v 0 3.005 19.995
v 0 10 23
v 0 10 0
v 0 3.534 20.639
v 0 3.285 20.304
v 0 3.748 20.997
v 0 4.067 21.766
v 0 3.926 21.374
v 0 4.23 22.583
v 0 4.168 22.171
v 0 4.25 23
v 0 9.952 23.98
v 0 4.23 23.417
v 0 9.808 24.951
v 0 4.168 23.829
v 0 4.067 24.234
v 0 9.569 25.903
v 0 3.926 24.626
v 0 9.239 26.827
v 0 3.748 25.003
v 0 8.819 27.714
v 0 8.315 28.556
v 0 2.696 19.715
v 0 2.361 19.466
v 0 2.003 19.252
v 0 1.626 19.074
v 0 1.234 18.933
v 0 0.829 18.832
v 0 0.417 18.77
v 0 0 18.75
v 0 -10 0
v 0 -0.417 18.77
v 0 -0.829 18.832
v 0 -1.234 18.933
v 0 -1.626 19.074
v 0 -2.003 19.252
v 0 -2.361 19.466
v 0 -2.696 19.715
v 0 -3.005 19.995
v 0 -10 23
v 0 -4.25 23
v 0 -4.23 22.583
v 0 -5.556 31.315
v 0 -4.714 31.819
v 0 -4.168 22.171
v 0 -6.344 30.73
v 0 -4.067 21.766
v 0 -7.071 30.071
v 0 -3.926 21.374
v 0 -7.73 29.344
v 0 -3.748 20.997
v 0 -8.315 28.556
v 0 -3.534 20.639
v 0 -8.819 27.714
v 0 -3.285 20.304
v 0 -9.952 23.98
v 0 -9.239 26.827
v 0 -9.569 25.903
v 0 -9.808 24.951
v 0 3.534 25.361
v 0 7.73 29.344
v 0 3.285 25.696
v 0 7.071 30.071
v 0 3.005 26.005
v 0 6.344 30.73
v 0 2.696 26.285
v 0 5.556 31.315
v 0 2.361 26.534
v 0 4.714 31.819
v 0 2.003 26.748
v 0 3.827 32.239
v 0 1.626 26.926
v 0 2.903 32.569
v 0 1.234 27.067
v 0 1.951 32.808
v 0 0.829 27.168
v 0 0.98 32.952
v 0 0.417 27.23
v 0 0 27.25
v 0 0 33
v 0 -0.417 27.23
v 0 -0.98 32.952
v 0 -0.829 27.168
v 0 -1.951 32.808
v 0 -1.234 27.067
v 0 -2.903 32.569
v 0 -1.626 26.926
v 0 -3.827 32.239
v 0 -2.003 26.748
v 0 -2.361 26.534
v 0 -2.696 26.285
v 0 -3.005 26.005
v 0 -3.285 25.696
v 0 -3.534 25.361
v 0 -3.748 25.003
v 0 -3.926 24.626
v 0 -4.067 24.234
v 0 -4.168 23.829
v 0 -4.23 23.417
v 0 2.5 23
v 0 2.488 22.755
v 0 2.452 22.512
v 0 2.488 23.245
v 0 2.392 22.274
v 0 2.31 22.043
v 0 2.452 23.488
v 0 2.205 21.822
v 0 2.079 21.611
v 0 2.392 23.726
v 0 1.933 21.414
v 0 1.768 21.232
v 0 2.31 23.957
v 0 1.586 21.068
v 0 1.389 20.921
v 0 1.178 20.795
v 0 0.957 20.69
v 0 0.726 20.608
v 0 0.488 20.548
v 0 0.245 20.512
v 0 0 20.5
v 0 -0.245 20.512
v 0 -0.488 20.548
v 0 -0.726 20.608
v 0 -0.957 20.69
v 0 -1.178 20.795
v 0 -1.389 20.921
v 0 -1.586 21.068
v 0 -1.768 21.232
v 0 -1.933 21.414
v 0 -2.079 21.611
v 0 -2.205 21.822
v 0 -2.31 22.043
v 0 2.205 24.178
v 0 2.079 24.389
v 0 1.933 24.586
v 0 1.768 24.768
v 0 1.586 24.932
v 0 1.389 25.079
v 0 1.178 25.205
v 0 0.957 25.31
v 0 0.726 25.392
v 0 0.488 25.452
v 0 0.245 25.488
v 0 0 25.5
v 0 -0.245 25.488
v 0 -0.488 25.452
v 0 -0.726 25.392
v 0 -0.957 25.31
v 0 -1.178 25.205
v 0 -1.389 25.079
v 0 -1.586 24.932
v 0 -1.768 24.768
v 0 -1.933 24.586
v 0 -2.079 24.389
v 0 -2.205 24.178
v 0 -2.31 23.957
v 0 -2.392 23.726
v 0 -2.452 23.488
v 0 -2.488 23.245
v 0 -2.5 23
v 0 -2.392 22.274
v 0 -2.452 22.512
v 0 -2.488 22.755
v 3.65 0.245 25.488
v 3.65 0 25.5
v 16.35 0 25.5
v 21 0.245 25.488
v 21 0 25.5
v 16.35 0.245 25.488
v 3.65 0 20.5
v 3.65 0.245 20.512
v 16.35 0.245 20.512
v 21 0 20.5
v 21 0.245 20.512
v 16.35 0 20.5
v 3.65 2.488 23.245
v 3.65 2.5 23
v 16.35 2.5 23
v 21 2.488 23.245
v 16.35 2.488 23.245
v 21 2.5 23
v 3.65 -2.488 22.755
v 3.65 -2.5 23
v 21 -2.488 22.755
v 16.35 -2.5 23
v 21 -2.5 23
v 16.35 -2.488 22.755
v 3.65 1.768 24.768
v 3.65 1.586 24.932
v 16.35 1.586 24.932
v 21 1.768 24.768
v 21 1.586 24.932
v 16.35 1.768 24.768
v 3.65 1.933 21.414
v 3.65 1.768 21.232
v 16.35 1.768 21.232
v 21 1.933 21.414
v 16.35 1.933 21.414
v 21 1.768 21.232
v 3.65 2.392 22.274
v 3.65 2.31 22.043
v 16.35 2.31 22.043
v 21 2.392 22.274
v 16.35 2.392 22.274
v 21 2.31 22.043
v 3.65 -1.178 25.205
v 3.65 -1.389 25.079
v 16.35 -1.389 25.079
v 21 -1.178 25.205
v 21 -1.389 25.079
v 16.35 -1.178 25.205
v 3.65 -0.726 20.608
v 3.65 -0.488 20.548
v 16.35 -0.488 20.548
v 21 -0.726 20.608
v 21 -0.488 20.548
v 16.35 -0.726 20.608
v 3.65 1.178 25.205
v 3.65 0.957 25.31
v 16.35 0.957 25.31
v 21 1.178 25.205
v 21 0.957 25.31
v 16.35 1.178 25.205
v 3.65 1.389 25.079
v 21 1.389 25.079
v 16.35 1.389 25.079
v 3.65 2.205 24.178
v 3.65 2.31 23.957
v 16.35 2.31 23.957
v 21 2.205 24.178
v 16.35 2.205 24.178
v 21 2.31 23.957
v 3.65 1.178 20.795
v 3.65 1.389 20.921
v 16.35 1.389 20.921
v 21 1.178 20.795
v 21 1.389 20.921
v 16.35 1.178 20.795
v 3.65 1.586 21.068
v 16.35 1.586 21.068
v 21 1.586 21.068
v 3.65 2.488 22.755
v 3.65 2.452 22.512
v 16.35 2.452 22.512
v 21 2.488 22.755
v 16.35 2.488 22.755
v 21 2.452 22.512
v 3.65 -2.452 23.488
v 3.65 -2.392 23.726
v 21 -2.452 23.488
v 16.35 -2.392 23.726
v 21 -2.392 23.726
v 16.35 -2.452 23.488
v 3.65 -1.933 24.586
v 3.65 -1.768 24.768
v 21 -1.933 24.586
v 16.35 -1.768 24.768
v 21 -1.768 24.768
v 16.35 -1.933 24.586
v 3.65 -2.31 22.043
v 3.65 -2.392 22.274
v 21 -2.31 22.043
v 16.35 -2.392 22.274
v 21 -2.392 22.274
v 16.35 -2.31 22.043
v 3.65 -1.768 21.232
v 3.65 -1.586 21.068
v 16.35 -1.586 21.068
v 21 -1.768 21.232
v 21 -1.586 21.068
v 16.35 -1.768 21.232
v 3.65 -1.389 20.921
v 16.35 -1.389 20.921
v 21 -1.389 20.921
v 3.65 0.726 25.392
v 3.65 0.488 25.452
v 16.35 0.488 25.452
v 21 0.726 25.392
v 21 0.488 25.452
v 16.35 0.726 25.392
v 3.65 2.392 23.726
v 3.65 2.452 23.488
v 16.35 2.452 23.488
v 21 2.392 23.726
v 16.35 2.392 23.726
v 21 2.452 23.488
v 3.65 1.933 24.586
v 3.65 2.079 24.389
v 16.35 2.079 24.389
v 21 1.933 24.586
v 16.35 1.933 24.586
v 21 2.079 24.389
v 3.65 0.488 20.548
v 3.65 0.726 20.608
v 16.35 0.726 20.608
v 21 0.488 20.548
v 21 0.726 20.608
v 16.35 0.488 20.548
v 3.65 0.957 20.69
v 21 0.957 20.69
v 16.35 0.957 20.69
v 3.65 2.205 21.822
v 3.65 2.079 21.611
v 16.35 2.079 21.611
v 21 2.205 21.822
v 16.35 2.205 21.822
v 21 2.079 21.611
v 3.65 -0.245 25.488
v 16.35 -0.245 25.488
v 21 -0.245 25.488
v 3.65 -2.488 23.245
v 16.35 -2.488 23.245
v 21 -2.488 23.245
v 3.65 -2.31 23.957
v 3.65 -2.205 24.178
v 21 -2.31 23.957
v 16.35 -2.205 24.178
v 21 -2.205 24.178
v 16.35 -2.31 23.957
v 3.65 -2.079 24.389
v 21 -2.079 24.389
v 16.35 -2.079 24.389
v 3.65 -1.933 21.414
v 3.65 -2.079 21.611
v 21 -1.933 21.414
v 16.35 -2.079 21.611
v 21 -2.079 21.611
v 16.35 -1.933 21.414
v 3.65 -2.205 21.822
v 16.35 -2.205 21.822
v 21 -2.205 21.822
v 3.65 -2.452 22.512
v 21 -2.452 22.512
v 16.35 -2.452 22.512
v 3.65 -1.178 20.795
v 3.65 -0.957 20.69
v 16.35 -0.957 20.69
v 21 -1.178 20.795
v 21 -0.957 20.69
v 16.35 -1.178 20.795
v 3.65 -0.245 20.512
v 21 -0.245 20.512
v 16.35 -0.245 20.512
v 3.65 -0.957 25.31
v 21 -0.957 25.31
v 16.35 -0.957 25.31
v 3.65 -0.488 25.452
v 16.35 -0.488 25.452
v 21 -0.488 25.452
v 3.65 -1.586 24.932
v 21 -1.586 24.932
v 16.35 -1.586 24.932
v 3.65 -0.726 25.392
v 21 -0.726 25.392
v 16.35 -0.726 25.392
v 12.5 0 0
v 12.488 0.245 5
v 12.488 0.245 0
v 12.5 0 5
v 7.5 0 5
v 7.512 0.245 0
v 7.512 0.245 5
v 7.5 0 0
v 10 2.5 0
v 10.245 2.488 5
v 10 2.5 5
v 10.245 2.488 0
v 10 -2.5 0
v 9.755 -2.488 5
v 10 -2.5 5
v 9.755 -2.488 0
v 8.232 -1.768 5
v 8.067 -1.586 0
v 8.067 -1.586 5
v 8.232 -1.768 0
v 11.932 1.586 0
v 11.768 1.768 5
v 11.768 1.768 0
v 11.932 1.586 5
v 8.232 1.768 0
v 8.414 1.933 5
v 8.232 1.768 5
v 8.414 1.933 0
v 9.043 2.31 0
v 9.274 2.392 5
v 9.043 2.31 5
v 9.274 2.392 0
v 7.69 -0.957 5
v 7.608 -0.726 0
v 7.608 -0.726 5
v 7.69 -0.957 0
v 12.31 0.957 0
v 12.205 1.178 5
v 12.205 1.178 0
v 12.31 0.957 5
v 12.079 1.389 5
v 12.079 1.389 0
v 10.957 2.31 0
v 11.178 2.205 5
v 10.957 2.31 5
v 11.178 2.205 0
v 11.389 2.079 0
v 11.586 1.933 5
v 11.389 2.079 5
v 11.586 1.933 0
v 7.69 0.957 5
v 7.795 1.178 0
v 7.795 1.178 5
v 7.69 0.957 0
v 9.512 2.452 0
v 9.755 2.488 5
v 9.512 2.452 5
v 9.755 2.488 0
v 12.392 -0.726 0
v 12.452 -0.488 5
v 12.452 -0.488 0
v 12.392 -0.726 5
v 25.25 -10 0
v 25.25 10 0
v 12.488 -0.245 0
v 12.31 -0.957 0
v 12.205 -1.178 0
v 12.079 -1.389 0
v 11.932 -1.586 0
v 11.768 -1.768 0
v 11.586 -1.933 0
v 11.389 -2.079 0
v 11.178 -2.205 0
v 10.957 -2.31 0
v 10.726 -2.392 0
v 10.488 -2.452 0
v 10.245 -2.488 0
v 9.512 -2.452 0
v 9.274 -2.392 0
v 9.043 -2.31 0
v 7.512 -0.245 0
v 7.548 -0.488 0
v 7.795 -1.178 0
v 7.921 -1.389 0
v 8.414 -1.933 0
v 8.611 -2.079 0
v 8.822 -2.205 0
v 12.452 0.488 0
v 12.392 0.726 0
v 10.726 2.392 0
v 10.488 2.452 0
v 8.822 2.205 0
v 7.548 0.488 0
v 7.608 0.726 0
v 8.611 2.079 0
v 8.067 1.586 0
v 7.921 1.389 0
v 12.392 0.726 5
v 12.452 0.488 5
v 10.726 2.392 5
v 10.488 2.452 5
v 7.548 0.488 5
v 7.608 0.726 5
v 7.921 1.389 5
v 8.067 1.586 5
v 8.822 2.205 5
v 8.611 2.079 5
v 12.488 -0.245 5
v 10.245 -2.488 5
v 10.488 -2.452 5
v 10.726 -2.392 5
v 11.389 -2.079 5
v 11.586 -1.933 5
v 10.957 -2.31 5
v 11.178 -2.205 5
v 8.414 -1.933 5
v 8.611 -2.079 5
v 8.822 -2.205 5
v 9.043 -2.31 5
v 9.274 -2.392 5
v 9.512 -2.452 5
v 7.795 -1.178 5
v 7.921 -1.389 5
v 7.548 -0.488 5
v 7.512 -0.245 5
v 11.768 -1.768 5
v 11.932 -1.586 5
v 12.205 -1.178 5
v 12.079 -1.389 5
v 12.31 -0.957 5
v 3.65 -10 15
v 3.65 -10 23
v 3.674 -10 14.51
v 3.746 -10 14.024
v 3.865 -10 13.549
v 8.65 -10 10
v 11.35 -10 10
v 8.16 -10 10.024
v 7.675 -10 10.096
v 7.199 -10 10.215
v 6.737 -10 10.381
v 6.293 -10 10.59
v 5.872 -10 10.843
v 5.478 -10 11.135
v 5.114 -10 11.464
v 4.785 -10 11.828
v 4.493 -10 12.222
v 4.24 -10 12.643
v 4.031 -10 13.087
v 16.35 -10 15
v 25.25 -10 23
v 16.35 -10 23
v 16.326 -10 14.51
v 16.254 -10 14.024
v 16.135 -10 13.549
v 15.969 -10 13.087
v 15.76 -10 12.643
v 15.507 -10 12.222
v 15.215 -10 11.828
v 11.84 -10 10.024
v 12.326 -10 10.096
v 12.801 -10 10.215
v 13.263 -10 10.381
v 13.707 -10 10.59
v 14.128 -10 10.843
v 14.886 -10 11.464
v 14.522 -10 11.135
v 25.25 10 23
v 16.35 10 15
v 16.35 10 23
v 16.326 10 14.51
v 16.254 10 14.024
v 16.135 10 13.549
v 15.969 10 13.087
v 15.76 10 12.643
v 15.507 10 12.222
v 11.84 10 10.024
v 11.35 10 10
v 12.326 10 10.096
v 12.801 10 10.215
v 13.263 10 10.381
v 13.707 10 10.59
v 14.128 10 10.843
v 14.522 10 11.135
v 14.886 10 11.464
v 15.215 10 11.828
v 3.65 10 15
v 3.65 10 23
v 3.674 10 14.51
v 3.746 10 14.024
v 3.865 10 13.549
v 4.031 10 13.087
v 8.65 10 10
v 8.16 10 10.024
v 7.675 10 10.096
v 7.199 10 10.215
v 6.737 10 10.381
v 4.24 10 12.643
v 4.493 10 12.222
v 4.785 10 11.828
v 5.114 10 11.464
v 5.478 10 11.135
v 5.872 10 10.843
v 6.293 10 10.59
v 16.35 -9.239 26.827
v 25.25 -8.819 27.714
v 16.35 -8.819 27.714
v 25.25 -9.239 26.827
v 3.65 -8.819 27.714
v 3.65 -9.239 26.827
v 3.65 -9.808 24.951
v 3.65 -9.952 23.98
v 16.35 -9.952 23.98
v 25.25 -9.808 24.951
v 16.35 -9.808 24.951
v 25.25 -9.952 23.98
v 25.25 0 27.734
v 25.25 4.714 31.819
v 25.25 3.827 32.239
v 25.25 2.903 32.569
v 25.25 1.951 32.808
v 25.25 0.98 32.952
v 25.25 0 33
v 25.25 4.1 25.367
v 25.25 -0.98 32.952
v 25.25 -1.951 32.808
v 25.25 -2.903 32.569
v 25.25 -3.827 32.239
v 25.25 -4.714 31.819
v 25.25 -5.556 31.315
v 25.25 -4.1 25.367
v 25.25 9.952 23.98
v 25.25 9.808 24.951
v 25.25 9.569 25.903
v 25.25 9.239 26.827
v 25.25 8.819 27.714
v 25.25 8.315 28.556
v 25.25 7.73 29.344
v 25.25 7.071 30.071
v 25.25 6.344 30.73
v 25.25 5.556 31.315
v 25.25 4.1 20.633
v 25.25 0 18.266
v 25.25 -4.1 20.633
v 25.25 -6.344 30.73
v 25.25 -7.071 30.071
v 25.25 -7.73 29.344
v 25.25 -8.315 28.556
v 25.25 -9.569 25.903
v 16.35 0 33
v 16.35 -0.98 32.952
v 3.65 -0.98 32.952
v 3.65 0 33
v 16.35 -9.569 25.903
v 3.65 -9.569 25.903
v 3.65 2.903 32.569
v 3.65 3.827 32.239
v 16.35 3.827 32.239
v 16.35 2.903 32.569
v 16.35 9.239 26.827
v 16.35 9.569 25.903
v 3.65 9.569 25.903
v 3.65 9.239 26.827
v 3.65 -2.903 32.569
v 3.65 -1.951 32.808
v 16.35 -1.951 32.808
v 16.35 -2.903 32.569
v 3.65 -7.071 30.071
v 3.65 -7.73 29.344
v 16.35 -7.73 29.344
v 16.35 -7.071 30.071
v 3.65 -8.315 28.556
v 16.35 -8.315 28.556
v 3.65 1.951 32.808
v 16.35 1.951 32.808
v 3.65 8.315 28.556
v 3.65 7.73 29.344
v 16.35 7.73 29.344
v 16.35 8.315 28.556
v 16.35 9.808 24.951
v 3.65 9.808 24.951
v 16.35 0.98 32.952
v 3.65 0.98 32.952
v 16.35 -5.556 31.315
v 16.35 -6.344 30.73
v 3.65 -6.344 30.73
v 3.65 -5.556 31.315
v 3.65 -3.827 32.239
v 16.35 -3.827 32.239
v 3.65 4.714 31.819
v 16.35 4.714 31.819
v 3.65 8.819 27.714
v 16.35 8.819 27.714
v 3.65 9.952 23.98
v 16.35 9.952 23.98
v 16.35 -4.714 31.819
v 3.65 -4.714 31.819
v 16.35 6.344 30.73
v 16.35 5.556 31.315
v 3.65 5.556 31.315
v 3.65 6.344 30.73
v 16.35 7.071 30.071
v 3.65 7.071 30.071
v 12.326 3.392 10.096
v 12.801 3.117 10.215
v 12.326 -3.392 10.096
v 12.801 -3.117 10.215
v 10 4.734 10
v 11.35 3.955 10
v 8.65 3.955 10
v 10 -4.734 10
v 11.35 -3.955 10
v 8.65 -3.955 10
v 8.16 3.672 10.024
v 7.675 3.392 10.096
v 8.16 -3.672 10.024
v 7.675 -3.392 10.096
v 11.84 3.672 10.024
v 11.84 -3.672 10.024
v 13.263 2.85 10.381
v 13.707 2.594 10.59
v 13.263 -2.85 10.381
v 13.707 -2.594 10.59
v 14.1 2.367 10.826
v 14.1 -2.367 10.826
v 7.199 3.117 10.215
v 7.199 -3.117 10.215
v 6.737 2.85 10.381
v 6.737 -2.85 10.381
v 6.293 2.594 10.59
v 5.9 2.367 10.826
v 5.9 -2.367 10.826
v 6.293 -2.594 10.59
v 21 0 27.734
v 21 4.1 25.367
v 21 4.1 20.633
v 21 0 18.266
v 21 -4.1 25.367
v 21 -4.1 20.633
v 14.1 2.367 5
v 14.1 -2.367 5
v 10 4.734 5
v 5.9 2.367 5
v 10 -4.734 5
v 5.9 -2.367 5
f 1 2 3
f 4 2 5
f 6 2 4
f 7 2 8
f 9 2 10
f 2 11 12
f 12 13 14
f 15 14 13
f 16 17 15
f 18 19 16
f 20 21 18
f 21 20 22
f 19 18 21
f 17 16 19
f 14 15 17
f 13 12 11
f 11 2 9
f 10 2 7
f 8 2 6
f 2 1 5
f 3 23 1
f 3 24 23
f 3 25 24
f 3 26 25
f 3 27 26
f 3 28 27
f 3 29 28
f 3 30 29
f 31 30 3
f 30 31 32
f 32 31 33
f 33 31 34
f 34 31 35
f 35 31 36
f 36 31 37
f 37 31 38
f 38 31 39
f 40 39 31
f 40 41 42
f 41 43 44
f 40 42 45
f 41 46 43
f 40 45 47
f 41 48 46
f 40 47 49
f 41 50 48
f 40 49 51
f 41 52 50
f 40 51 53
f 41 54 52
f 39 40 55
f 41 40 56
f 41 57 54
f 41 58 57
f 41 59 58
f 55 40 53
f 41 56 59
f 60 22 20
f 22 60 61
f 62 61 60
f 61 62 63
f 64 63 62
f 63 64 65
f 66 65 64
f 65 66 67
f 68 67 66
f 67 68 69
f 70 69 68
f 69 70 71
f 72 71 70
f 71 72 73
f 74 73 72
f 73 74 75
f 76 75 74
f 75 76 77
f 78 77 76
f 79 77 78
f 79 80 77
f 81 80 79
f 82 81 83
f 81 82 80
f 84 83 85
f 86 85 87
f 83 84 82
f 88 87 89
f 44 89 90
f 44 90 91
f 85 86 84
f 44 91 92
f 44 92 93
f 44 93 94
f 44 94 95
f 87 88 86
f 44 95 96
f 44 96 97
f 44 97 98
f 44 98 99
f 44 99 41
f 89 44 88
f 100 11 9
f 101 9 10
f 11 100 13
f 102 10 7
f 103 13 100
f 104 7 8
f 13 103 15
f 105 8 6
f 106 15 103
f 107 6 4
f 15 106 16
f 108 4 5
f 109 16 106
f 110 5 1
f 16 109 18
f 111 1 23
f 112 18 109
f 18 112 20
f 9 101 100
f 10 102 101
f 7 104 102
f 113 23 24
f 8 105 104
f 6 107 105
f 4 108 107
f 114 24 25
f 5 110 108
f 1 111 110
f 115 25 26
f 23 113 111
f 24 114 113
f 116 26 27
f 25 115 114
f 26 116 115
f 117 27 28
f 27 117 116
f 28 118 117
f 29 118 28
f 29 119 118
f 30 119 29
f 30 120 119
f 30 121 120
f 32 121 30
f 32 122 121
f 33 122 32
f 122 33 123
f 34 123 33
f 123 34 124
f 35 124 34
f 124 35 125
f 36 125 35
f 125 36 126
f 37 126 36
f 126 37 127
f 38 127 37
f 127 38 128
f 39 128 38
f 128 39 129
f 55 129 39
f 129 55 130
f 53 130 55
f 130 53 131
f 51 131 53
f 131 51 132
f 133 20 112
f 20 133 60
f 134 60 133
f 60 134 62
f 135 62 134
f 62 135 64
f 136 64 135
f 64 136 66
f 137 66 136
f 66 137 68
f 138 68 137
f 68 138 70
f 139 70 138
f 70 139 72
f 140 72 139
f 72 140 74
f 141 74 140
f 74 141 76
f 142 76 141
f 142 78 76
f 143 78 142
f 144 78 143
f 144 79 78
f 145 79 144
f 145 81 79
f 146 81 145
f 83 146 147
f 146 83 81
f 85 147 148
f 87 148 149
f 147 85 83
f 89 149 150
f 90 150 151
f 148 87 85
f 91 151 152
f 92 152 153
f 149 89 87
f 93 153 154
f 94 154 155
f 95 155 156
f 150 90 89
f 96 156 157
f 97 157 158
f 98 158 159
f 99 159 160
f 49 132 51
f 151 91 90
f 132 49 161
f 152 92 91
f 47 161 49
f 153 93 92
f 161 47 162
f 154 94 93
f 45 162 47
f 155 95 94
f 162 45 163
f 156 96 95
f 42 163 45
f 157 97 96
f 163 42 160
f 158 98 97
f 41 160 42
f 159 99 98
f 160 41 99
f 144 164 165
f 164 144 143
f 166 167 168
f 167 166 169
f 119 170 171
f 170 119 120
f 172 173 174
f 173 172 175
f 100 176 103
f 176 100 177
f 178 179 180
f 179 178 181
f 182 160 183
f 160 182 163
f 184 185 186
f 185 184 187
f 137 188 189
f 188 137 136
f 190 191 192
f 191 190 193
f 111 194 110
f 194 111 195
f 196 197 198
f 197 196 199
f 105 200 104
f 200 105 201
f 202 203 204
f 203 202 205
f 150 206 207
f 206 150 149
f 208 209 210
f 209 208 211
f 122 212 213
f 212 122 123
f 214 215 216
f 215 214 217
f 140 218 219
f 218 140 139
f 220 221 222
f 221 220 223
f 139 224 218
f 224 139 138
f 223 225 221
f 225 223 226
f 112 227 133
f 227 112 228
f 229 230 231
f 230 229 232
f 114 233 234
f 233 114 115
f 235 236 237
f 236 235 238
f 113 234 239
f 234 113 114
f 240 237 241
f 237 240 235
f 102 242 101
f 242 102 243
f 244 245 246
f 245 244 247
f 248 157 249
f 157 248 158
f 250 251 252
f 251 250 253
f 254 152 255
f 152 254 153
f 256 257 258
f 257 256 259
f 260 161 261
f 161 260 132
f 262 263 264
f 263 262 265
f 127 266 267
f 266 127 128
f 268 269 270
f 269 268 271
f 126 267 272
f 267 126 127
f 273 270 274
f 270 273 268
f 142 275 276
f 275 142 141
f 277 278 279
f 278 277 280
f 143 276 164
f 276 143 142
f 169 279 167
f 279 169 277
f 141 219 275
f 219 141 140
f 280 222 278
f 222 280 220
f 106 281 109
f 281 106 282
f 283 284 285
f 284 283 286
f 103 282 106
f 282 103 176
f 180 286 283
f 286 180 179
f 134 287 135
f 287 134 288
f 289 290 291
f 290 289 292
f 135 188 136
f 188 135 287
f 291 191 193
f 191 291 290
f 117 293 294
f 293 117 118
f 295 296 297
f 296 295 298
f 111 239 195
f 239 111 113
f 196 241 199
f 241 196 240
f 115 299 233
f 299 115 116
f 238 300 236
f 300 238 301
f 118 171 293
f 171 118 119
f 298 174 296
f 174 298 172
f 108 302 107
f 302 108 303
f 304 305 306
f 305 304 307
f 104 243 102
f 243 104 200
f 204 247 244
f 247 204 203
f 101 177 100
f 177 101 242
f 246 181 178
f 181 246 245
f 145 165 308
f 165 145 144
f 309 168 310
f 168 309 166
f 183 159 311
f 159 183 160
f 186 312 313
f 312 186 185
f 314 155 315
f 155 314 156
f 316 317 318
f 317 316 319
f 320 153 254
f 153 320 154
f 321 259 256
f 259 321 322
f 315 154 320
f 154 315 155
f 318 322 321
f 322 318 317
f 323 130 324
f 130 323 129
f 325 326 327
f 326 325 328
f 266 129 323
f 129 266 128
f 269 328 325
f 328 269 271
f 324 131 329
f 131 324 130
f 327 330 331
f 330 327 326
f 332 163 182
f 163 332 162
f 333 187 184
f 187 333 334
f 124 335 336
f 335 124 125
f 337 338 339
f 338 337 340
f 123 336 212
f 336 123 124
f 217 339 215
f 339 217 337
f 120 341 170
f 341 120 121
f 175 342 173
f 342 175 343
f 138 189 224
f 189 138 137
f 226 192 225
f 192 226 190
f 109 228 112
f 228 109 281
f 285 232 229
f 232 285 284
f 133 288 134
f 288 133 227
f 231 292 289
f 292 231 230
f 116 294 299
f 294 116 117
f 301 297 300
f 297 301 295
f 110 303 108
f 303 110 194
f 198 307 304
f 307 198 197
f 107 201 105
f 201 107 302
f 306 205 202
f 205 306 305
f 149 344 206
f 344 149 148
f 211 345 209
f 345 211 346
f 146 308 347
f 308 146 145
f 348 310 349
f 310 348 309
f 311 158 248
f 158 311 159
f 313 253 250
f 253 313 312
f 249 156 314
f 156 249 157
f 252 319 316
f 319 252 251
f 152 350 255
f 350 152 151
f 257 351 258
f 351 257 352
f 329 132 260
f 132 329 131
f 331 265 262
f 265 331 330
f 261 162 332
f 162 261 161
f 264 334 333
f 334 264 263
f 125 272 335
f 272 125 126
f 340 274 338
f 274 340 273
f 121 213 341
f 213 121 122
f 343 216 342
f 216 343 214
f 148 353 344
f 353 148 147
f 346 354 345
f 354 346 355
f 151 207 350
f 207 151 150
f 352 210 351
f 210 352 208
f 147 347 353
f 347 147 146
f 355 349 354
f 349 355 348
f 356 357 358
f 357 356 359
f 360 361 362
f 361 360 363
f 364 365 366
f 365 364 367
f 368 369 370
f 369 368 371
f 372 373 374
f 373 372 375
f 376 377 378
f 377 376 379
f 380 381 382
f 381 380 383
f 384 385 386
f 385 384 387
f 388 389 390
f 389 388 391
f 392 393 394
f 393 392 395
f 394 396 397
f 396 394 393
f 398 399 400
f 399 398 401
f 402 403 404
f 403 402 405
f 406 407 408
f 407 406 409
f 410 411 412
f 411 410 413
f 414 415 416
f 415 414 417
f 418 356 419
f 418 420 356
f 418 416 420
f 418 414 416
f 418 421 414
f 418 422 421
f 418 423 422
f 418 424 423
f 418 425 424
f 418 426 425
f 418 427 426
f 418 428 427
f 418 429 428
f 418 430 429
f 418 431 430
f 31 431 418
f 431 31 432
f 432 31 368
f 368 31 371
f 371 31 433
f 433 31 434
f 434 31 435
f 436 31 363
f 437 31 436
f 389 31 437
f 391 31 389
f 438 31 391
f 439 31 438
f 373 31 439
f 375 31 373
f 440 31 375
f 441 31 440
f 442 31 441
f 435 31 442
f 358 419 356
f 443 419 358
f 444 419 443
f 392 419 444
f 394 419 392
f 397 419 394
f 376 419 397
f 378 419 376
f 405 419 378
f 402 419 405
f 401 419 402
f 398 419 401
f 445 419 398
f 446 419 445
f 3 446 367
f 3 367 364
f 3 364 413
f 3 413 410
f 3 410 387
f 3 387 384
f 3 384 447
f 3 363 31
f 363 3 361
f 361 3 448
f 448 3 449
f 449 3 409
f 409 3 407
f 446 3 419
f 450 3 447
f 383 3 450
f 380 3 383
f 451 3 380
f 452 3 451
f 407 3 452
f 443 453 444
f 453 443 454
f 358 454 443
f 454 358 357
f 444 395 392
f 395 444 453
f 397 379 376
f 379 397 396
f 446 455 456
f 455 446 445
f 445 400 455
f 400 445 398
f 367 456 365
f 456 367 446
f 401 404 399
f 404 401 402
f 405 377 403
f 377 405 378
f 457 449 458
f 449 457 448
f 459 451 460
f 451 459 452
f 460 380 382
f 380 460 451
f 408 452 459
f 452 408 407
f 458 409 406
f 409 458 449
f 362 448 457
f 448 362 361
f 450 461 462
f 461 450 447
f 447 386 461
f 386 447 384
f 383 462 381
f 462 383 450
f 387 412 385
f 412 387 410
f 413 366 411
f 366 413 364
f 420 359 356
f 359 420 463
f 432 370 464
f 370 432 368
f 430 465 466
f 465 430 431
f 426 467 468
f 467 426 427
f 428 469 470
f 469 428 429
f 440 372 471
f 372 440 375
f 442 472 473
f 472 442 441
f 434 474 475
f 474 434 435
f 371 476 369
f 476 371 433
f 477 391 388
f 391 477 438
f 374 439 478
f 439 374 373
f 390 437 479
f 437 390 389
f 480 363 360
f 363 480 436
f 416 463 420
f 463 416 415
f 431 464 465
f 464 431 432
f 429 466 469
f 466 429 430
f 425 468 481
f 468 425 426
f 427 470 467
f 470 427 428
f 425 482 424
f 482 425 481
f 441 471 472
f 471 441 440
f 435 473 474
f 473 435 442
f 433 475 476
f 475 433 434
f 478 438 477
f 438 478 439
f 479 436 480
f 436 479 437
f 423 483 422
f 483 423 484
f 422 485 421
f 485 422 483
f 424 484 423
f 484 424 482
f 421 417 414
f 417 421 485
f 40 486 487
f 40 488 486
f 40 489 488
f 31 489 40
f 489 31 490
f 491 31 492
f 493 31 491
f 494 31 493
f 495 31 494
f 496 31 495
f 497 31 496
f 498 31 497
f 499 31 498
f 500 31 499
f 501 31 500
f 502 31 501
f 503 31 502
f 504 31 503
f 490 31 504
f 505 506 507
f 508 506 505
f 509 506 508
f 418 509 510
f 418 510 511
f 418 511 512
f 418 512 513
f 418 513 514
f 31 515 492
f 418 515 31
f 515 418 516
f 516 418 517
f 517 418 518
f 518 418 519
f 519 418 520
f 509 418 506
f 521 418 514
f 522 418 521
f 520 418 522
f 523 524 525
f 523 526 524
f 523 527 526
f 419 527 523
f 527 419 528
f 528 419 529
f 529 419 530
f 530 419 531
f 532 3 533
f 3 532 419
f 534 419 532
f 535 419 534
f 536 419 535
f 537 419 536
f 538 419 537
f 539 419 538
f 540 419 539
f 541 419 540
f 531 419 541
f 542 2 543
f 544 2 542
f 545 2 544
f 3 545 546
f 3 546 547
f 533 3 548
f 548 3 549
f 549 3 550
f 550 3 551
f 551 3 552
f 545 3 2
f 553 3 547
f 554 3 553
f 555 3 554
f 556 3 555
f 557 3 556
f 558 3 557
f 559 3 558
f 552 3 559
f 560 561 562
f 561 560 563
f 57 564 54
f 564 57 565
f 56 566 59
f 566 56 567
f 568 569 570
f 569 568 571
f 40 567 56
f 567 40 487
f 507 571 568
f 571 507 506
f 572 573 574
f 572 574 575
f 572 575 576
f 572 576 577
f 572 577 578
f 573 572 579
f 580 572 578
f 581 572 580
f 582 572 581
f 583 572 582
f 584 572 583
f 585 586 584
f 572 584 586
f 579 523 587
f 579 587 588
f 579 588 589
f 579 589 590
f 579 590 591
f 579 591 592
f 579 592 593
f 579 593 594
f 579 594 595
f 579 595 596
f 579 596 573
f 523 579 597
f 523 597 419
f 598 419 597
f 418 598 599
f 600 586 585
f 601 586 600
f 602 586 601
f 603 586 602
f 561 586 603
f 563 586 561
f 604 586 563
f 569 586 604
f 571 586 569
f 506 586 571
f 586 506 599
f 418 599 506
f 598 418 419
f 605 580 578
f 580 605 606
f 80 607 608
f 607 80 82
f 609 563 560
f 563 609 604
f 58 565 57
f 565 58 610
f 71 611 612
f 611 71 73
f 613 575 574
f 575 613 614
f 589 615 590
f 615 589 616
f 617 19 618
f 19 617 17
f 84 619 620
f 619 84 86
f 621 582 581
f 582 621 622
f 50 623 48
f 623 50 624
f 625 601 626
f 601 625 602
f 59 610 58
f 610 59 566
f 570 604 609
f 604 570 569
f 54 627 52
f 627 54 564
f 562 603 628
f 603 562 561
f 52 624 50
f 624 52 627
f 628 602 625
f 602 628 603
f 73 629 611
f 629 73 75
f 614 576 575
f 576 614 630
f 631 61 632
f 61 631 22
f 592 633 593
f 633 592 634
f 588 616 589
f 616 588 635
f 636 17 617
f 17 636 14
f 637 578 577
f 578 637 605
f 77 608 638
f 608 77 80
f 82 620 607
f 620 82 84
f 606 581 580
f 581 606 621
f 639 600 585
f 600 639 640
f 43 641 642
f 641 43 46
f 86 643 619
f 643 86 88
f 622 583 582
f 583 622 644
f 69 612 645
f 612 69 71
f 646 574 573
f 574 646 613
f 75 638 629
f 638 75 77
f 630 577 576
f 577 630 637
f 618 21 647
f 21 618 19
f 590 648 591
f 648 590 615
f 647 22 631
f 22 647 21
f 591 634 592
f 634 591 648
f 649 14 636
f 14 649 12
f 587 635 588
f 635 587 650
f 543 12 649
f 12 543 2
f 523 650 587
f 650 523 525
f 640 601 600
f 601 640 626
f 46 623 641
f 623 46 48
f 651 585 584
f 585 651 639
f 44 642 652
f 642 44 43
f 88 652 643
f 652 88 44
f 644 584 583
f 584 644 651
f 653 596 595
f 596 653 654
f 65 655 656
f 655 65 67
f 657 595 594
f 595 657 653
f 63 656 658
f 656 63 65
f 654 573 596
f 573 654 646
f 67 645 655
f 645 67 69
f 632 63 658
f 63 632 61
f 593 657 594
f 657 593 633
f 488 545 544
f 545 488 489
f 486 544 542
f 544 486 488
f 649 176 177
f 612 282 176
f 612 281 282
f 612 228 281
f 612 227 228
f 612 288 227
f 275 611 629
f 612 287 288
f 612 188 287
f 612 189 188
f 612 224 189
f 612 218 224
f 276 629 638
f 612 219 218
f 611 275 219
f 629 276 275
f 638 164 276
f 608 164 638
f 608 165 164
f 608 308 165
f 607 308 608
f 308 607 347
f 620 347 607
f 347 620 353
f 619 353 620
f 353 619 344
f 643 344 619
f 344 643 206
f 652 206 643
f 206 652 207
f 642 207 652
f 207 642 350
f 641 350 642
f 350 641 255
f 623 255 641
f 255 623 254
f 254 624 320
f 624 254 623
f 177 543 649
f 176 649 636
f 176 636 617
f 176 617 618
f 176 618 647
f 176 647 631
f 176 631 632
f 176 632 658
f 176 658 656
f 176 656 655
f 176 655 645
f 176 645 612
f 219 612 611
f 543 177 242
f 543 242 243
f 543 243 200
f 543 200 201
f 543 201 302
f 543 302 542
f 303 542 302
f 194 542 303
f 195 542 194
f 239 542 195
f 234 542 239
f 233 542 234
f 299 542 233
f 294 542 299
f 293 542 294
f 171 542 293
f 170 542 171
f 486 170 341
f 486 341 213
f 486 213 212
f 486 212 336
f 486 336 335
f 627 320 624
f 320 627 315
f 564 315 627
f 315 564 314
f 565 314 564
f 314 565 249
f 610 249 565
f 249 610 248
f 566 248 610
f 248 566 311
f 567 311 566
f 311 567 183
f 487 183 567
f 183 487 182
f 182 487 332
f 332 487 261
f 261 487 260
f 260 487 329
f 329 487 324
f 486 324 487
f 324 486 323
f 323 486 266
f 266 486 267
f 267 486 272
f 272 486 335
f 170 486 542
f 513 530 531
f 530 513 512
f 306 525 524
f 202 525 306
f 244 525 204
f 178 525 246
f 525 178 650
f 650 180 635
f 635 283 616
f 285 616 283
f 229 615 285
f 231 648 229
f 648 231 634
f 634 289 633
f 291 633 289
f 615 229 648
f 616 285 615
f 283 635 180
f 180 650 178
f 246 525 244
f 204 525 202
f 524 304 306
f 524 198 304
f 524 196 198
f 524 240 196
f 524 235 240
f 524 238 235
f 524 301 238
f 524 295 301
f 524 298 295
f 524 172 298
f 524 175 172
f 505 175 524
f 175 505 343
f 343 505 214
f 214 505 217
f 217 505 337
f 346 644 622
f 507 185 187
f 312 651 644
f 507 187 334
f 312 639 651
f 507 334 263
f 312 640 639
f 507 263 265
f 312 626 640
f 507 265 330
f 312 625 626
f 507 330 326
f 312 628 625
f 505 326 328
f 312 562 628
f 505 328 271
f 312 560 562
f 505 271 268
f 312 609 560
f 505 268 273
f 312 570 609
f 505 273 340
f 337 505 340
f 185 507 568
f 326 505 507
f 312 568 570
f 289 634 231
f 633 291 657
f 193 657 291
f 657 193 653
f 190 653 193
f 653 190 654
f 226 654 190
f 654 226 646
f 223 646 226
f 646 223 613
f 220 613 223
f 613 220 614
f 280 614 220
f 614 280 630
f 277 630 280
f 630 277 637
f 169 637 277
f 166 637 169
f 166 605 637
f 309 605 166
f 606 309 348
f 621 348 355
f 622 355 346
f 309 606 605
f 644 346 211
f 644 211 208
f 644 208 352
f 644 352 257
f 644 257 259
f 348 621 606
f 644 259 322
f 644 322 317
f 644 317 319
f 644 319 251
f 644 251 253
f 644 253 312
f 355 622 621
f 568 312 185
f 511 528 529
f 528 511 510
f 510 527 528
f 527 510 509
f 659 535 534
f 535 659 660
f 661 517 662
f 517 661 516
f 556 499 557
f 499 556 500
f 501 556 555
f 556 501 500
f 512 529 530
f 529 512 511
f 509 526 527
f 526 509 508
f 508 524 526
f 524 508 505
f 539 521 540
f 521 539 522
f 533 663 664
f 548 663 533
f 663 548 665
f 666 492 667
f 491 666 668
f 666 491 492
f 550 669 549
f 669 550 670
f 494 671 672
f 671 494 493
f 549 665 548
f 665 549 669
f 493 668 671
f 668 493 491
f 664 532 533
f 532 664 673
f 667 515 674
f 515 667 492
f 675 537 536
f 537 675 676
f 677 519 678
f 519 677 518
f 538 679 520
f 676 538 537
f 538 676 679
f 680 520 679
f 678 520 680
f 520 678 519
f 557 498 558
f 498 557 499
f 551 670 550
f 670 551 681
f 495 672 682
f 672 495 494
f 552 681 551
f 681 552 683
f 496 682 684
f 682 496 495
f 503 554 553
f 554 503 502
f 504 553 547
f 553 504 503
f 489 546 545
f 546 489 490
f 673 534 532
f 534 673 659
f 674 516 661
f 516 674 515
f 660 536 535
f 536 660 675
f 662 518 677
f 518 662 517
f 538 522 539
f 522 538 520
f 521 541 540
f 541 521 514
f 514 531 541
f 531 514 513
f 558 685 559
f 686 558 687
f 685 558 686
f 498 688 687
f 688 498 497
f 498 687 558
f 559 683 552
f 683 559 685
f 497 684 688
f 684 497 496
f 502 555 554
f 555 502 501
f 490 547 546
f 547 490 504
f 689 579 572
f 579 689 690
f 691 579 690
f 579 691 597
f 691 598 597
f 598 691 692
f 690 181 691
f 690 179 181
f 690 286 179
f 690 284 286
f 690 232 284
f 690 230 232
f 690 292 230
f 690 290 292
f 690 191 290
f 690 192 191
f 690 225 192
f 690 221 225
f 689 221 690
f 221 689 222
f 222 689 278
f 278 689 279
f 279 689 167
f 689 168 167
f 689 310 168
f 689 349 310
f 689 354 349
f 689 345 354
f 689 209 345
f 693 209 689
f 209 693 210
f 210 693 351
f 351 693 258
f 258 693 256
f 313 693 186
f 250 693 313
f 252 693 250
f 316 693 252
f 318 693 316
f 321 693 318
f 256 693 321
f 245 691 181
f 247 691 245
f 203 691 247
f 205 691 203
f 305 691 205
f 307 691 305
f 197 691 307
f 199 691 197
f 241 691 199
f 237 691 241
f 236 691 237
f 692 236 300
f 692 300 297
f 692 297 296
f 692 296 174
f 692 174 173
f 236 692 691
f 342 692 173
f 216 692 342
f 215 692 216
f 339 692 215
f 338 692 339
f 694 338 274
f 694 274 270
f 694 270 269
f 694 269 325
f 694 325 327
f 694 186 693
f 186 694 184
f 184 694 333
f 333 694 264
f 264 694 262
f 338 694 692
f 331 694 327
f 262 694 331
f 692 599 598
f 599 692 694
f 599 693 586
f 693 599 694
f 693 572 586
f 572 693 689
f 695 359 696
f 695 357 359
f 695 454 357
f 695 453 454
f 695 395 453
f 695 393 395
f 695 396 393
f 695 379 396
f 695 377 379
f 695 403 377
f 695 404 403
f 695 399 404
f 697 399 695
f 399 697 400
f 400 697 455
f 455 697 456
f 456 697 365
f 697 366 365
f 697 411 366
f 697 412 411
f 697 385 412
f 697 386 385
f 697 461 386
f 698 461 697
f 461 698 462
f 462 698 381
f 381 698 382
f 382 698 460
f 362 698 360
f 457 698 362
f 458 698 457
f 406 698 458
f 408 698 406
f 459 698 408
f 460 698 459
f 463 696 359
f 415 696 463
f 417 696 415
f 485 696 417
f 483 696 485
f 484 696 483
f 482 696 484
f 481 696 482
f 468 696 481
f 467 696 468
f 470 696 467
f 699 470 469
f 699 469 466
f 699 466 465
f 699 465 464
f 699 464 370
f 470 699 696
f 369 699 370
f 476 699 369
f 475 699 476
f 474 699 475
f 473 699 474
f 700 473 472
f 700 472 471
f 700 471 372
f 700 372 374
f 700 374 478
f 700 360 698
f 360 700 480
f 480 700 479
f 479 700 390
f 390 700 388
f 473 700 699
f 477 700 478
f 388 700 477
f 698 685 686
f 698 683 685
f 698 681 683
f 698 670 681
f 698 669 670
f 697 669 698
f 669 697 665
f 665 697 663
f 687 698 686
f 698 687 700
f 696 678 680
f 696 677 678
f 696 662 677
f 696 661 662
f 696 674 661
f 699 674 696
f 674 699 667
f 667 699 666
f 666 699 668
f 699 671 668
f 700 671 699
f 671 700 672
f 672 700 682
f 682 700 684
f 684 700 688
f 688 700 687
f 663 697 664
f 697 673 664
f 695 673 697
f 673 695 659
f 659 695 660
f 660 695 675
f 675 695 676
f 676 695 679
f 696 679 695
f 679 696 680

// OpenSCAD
// file: nutsnbolts/data-access.scad
// Norm Nuts and Bolts - a OpenSCAD library
// Copyright (C) 2012  Johannes Kneer

// This program is free software: you can redistribute it and/or modify
// it under the terms of the GNU General Public License as published by
// the Free Software Foundation, either version 3 of the License, or
// (at your option) any later version.

// This program is distributed in the hope that it will be useful,
// but WITHOUT ANY WARRANTY; without even the implied warranty of
// MERCHANTABILITY or FITNESS FOR A PARTICULAR PURPOSE.  See the
// GNU General Public License for more details.

// You should have received a copy of the GNU General Public License
// along with this program.  If not, see <http://www.gnu.org/licenses/>.


// DATABASE ACCESS FUNCTIONS AND CONSTANTS



// == CONSTANTS ==

// screw table access keys
_NB_S_DESC            = 0;
_NB_S_FAMKEY			    = 1;
_NB_S_LENGTH          = 2;
_NB_S_NOTHREAD_LENGTH = 3;

_NB_F_DESC			      = 0;
_NB_F_OUTER_DIA       = 1;
_NB_F_INNER_DIA       = 2;
_NB_F_LEAD            = 3;
_NB_F_KEY             = 4;
_NB_F_KEY_DEPTH       = 5;
_NB_F_HEAD_HEIGHT     = 6;
_NB_F_HEAD_DIA        = 7;
_NB_F_NUT_KEY         = 8;
_NB_F_NUT_HEIGHT      = 9;
_NB_F_PITCH_FINE      = 10;
_NB_F_PITCH_MEDIUM    = 11;
_NB_F_PITCH_COARSE    = 12;


// == FUNCTIONS ==

// _get_screw("descriptor")   with descriptor = M8x25
//   find the line for a general object in the data matrix

function _get_screw(n) = data_screw[search([n], data_screw)[0]];
function _get_screw_fam(n) = data_screw_fam[search([_get_screw(n)[_NB_S_FAMKEY]], data_screw_fam)[0]];

function _get_fam(n) = data_screw_fam[search([n], data_screw_fam)[0]];


// _get_XXXXX("descriptor") functions
// find a single property in the database

function _get_desc(n)        = _get_screw(n)[_NB_S_DESC];
function _get_famkey(n)         = _get_screw(n)[_NB_S_FAMKEY];
function _get_length(n)      = _get_screw(n)[_NB_S_LENGTH];
function _get_nt_length(n)   = _get_screw(n)[_NB_S_NOTHREAD_LENGTH];

function _get_outer_dia(n)   = _get_screw_fam(n)[_NB_F_OUTER_DIA];
function _get_inner_dia(n)   = _get_screw_fam(n)[_NB_F_INNER_DIA];
function _get_lead(n)        = _get_screw_fam(n)[_NB_F_LEAD];
function _get_head_height(n) = _get_screw_fam(n)[_NB_F_HEAD_HEIGHT];
function _get_head_dia(n)    = _get_screw_fam(n)[_NB_F_HEAD_DIA];
function _get_nut_key(n)     = _get_screw_fam(n)[_NB_F_NUT_KEY];
function _get_nut_height(n)  = _get_screw_fam(n)[_NB_F_NUT_HEIGHT];
function _get_fine_pitch(n)  = _get_screw_fam(n)[_NB_F_PITCH_FINE];
function _get_medium_pitch(n)  = _get_screw_fam(n)[_NB_F_PITCH_MEDIUM];
function _get_coarse_pitch(n)  = _get_screw_fam(n)[_NB_F_PITCH_COARSE];
// main file
include <nutsnbolts/cyl_head_bolt.scad>

$fn=64;

module pulley_2d_block() {
    circle(r=10);
    translate([0,-10,0])
    square([23,20]);   
}

module pulley_2d_punch() {
    translate([10,00,10])
    hull() {
    translate([-1.35,0,0])
        circle(r=5);
    translate([ 1.35,0,0])
        circle(r=5);
    translate([-6.35,0,0])
       square([12.7,18.5]);
    }
}

difference() {
translate([0,0,23])
rotate([0,90,0])
color("red")
linear_extrude(height=25.25)
    pulley_2d_block();

translate([0,10,15])
  rotate([90,00,0])
    color("blue")
    linear_extrude(height=20)
        pulley_2d_punch();

// pulley wheel
    translate([0,0,23])
        rotate([0,-90,0])    
            screw(
                name="M5x25",
                thread="no");
     translate([21,0,23])
        rotate([0,-90,0])    
            nutcatch_parallel(
                name="M5",
                l=5.0,
                clk=0.2);
                
// pulley pull up
    translate([10,0,50])
        rotate([0,0,0])    
            screw(
                name="M5x50",
                thread="no");
     translate([10,0,13])
        rotate([0,0,90])    
            nutcatch_parallel(
                name="M5",
                l=8,
                clk=0.2);
                
}
